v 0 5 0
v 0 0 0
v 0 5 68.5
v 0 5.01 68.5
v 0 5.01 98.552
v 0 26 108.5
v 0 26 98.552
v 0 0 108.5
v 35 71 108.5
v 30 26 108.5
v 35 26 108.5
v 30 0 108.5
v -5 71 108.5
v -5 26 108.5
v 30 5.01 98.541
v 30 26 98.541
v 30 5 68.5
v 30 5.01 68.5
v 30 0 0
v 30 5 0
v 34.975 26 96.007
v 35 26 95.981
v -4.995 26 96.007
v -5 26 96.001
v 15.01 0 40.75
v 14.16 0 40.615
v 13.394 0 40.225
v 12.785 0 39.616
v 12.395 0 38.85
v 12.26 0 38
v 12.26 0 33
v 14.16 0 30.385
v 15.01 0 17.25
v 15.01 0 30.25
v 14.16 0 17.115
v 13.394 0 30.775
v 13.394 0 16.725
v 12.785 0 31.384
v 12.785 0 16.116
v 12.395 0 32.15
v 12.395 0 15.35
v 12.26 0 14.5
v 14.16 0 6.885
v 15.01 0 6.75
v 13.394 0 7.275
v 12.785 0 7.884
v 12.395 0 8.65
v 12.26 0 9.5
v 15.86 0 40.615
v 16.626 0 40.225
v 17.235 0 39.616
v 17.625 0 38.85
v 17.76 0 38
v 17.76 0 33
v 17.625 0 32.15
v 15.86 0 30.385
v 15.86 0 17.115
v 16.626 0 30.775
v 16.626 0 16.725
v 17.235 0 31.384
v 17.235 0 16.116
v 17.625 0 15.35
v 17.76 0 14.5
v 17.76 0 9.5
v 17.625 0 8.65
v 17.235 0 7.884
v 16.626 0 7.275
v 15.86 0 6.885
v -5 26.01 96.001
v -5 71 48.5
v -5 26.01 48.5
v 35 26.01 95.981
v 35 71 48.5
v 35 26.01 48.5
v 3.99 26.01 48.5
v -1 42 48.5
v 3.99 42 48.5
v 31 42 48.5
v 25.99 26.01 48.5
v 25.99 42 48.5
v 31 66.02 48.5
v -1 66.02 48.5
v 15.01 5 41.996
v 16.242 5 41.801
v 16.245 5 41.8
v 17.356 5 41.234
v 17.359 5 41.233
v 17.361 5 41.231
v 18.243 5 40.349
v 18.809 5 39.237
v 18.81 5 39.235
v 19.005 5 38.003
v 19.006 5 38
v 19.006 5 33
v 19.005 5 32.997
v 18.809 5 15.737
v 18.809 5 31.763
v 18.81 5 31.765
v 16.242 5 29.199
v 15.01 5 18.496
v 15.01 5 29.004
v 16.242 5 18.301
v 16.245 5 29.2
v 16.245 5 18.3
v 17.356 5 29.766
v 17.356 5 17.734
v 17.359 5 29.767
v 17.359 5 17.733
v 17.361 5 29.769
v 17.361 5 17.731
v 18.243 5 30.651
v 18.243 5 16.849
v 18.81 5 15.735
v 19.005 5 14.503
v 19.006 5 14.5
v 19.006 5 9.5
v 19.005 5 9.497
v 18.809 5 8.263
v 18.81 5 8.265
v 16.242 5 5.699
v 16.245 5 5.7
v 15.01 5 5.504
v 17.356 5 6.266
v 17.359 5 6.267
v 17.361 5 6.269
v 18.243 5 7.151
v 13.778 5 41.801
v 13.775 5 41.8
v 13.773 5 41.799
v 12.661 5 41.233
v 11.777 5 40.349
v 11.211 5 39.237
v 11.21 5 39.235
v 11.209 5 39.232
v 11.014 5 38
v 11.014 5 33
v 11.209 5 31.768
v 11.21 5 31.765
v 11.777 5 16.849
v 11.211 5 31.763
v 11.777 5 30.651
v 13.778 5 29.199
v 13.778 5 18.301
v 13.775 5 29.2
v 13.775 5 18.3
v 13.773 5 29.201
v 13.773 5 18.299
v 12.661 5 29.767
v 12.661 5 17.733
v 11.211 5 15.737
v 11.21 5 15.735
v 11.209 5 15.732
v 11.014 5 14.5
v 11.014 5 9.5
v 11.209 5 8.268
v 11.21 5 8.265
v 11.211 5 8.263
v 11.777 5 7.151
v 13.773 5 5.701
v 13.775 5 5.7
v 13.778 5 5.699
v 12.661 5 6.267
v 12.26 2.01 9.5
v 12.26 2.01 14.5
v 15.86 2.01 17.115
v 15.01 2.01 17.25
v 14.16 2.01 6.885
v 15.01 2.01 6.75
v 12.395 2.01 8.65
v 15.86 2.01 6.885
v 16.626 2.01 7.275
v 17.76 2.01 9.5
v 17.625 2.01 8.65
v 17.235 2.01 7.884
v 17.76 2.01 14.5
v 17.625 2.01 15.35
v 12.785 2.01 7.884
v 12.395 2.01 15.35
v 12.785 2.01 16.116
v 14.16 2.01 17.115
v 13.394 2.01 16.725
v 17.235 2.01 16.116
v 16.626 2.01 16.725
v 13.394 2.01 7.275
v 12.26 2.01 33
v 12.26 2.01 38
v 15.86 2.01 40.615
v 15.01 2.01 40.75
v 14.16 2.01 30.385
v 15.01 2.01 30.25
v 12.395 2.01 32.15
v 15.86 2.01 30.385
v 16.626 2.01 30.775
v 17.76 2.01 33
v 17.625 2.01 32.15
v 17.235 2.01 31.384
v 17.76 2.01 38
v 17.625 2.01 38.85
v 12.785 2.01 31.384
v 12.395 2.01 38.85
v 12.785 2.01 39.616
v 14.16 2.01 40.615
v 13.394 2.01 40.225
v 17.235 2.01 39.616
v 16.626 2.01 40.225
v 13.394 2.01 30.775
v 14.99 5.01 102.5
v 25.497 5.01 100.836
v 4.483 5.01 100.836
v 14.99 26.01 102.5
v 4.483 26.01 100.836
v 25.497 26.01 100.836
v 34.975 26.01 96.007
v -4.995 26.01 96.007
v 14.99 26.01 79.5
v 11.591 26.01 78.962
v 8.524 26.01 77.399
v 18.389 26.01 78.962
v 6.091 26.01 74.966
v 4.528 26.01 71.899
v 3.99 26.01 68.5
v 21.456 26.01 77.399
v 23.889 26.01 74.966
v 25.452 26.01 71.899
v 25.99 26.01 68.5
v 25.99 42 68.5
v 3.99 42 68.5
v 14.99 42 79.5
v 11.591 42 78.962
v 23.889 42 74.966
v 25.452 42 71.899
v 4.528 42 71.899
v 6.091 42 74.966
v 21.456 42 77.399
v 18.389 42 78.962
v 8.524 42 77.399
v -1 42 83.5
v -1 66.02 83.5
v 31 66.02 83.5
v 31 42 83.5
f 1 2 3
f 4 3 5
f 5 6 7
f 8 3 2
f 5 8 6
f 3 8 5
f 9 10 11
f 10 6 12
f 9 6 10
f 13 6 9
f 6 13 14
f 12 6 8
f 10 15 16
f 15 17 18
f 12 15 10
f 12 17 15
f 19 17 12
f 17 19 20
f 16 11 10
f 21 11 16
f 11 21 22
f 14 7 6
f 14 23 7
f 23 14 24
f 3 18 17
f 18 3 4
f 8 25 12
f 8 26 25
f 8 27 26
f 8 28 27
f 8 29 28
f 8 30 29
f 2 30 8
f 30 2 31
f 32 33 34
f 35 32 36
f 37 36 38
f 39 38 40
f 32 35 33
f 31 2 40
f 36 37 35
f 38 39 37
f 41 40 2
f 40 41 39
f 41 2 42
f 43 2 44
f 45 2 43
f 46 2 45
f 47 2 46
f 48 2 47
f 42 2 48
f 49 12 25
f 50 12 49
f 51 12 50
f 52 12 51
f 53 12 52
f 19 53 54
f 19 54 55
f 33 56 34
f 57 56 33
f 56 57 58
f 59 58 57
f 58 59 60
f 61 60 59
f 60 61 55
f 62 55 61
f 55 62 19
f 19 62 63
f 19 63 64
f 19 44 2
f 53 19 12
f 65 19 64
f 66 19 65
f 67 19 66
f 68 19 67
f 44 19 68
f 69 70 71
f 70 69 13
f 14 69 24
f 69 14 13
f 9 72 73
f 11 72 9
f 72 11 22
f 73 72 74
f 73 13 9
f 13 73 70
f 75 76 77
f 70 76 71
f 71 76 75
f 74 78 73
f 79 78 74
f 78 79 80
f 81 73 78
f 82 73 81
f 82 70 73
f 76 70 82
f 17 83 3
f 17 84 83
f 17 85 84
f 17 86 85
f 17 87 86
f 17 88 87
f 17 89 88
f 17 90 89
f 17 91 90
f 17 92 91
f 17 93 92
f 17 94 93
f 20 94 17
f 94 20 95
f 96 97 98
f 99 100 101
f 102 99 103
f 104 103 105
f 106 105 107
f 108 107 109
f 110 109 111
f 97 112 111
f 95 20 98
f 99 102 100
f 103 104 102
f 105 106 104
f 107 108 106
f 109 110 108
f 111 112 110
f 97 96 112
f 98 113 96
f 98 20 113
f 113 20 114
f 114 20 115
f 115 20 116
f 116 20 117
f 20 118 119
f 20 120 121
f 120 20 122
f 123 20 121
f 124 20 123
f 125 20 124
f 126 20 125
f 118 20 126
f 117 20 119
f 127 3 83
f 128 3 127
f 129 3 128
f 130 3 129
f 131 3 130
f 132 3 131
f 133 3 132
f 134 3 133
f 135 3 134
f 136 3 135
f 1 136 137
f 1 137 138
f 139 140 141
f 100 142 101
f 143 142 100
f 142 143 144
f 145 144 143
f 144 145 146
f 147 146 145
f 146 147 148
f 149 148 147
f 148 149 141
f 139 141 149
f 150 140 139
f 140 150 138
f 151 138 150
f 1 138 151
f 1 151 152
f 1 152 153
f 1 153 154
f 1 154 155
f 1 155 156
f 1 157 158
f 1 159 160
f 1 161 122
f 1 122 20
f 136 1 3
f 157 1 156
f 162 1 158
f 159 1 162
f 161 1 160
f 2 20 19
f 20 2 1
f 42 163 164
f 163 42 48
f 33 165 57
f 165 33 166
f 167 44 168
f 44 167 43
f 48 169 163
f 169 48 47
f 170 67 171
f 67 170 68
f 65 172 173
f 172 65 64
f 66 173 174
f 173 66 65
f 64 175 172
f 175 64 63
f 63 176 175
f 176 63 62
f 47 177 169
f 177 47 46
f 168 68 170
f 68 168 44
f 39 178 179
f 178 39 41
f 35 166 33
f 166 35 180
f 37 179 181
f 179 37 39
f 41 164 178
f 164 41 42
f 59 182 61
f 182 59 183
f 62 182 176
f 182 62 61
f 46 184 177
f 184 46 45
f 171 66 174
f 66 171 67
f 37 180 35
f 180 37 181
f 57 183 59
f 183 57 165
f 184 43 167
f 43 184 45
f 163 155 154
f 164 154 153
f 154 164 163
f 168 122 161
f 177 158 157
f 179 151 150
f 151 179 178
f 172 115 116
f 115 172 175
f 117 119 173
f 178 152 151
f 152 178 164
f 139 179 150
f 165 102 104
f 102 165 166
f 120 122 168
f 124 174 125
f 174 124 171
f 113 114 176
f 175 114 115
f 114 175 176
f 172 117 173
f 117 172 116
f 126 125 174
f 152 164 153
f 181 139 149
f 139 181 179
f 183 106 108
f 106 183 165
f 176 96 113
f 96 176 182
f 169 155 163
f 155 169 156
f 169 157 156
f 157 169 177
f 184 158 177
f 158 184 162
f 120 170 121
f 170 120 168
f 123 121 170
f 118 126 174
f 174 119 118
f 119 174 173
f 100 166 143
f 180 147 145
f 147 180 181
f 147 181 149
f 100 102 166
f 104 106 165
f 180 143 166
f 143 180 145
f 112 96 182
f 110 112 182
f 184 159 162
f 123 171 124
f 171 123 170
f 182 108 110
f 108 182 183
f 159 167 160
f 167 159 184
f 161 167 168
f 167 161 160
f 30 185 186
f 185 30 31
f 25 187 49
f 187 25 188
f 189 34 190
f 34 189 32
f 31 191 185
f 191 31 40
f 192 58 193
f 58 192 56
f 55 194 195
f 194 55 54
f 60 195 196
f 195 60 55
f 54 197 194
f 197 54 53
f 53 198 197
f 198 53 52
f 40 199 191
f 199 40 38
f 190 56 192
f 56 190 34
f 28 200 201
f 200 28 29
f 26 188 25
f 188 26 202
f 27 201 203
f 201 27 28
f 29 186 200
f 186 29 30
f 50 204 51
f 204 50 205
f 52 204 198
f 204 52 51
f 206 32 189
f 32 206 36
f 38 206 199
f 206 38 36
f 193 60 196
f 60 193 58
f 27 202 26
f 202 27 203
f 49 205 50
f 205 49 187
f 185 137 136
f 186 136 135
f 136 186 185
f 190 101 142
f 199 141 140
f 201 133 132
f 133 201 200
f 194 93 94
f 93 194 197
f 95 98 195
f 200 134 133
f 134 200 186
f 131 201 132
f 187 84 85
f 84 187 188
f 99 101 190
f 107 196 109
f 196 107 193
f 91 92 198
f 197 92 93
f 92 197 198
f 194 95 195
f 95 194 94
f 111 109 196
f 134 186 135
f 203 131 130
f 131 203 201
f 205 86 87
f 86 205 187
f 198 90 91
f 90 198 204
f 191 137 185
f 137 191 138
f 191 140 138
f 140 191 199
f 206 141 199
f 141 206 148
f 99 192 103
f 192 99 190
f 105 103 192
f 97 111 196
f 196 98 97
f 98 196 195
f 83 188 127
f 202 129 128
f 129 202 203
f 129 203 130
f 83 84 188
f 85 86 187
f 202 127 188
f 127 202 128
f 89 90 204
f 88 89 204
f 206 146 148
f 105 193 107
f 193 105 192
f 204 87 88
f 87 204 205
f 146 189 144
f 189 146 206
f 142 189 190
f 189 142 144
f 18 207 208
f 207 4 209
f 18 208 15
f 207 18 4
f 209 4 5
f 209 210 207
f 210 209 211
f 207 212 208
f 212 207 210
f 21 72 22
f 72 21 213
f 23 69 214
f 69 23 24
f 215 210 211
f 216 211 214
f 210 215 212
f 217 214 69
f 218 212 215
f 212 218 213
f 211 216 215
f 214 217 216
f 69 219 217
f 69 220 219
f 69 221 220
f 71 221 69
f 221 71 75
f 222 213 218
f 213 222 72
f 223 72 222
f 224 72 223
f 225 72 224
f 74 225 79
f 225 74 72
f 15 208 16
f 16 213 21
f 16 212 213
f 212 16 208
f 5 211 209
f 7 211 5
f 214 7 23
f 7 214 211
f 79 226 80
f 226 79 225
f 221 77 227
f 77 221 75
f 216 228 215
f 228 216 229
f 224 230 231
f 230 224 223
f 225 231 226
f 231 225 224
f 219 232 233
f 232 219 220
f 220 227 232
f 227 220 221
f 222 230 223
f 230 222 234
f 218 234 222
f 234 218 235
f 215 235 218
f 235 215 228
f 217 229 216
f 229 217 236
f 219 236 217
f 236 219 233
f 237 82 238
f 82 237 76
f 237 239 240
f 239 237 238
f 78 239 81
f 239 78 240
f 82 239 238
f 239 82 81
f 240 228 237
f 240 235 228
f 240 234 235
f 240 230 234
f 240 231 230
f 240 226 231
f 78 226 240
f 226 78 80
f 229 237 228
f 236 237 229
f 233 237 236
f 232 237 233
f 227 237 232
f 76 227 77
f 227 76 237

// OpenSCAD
$fn=20;

wall_screw_diameter = 5.5;
wall_screw_outer_diameter = 8;
wall_screw_head_height = 3; 
wall_screw_distance = 23.5;
wall_screw_offset = 10;
wall_screw_tolerance = 5;

gearbox_depth = 32;
gearbox_thickness = 24;
gearbox_height_without_motor = 46;
gearbox_motor_height = 39;

gearbox_axle_diameter = 15 + 7; // +7 to account for axle being offset
gearbox_axle_thickness = 14 + 2; // +2 for tolerance
gearbox_axle_offset = 15;

gearbox_gear_diameter = 68;
gearbox_gear_thickness = 19 + 2; // +2 for tolerance

gearbox_full_thickness = gearbox_thickness + gearbox_axle_thickness + gearbox_gear_thickness;
gearbox_full_height = gearbox_height_without_motor + gearbox_motor_height;

mount_width = 30;
mount_thickness = 5;

axle_to_top_screw = 33;
screw_bottom_offset = 12;

box_height = 40;
box_offset = screw_bottom_offset + wall_screw_distance + axle_to_top_screw;
box_thickness = 5;

cuo = 200;
ep = 0.01;
ep2 = ep*2;

module capsule(height, width, length, width2 = "undefined") {
    rotate([-90,0,0]) {
        hull() {
            translate([-ep,-height/2,0]) if (width2 == "undefined") {
                cylinder(d=width, h=length);
            } else {
                cylinder(d1=width, d2=width2, h=length);
            }
            translate([-ep,height/2,0]) if (width2 == "undefined") {
                cylinder(d=width, h=length);
            } else {
                cylinder(d1=width, d2=width2, h=length);
            }
        }
    }
}

module motor_profile() {
    translate([
        gearbox_depth/2,
        0,
        gearbox_full_height - gearbox_axle_offset - cuo/2,
    ])
    capsule(cuo, gearbox_gear_diameter, gearbox_gear_thickness);

    translate([
        gearbox_depth/2,
        gearbox_gear_thickness - ep,
        gearbox_full_height - gearbox_axle_offset - cuo/2,
    ])
    capsule(cuo, gearbox_axle_diameter, gearbox_axle_thickness+ep2);

    translate([
        0,
        gearbox_gear_thickness + gearbox_axle_thickness - ep,
        gearbox_full_height - cuo,
    ])
    cube([gearbox_depth, gearbox_thickness+ep2, cuo]);
}

module screw() {
    capsule(wall_screw_tolerance, wall_screw_diameter, 100);
    capsule(wall_screw_tolerance, wall_screw_outer_diameter, wall_screw_head_height, wall_screw_diameter);
}

module mounting_plate() {
    difference() {
        union() {
            cube([mount_width, mount_thickness, gearbox_full_height]);

            translate([0, 0, 0]) {
                translate([0, 0, box_offset])
                cube([mount_width, gearbox_gear_thickness+box_thickness, box_height]);

                translate([-mount_thickness, mount_thickness+gearbox_gear_thickness, box_offset - 20])
                cube([mount_width+mount_thickness*2, gearbox_axle_thickness+gearbox_thickness+mount_thickness, box_height + 20]);
            }
        }

        translate([mount_width/2, mount_thickness+ep, screw_bottom_offset]) rotate([0,0,180]) {
            screw();
            translate([0, 0, wall_screw_distance]) screw();
        }
    }
}

difference() {
    mounting_plate();
    translate([mount_width/2 - gearbox_depth/2, mount_thickness + ep, box_offset-gearbox_full_height+gearbox_axle_offset]) motor_profile(); 
}
